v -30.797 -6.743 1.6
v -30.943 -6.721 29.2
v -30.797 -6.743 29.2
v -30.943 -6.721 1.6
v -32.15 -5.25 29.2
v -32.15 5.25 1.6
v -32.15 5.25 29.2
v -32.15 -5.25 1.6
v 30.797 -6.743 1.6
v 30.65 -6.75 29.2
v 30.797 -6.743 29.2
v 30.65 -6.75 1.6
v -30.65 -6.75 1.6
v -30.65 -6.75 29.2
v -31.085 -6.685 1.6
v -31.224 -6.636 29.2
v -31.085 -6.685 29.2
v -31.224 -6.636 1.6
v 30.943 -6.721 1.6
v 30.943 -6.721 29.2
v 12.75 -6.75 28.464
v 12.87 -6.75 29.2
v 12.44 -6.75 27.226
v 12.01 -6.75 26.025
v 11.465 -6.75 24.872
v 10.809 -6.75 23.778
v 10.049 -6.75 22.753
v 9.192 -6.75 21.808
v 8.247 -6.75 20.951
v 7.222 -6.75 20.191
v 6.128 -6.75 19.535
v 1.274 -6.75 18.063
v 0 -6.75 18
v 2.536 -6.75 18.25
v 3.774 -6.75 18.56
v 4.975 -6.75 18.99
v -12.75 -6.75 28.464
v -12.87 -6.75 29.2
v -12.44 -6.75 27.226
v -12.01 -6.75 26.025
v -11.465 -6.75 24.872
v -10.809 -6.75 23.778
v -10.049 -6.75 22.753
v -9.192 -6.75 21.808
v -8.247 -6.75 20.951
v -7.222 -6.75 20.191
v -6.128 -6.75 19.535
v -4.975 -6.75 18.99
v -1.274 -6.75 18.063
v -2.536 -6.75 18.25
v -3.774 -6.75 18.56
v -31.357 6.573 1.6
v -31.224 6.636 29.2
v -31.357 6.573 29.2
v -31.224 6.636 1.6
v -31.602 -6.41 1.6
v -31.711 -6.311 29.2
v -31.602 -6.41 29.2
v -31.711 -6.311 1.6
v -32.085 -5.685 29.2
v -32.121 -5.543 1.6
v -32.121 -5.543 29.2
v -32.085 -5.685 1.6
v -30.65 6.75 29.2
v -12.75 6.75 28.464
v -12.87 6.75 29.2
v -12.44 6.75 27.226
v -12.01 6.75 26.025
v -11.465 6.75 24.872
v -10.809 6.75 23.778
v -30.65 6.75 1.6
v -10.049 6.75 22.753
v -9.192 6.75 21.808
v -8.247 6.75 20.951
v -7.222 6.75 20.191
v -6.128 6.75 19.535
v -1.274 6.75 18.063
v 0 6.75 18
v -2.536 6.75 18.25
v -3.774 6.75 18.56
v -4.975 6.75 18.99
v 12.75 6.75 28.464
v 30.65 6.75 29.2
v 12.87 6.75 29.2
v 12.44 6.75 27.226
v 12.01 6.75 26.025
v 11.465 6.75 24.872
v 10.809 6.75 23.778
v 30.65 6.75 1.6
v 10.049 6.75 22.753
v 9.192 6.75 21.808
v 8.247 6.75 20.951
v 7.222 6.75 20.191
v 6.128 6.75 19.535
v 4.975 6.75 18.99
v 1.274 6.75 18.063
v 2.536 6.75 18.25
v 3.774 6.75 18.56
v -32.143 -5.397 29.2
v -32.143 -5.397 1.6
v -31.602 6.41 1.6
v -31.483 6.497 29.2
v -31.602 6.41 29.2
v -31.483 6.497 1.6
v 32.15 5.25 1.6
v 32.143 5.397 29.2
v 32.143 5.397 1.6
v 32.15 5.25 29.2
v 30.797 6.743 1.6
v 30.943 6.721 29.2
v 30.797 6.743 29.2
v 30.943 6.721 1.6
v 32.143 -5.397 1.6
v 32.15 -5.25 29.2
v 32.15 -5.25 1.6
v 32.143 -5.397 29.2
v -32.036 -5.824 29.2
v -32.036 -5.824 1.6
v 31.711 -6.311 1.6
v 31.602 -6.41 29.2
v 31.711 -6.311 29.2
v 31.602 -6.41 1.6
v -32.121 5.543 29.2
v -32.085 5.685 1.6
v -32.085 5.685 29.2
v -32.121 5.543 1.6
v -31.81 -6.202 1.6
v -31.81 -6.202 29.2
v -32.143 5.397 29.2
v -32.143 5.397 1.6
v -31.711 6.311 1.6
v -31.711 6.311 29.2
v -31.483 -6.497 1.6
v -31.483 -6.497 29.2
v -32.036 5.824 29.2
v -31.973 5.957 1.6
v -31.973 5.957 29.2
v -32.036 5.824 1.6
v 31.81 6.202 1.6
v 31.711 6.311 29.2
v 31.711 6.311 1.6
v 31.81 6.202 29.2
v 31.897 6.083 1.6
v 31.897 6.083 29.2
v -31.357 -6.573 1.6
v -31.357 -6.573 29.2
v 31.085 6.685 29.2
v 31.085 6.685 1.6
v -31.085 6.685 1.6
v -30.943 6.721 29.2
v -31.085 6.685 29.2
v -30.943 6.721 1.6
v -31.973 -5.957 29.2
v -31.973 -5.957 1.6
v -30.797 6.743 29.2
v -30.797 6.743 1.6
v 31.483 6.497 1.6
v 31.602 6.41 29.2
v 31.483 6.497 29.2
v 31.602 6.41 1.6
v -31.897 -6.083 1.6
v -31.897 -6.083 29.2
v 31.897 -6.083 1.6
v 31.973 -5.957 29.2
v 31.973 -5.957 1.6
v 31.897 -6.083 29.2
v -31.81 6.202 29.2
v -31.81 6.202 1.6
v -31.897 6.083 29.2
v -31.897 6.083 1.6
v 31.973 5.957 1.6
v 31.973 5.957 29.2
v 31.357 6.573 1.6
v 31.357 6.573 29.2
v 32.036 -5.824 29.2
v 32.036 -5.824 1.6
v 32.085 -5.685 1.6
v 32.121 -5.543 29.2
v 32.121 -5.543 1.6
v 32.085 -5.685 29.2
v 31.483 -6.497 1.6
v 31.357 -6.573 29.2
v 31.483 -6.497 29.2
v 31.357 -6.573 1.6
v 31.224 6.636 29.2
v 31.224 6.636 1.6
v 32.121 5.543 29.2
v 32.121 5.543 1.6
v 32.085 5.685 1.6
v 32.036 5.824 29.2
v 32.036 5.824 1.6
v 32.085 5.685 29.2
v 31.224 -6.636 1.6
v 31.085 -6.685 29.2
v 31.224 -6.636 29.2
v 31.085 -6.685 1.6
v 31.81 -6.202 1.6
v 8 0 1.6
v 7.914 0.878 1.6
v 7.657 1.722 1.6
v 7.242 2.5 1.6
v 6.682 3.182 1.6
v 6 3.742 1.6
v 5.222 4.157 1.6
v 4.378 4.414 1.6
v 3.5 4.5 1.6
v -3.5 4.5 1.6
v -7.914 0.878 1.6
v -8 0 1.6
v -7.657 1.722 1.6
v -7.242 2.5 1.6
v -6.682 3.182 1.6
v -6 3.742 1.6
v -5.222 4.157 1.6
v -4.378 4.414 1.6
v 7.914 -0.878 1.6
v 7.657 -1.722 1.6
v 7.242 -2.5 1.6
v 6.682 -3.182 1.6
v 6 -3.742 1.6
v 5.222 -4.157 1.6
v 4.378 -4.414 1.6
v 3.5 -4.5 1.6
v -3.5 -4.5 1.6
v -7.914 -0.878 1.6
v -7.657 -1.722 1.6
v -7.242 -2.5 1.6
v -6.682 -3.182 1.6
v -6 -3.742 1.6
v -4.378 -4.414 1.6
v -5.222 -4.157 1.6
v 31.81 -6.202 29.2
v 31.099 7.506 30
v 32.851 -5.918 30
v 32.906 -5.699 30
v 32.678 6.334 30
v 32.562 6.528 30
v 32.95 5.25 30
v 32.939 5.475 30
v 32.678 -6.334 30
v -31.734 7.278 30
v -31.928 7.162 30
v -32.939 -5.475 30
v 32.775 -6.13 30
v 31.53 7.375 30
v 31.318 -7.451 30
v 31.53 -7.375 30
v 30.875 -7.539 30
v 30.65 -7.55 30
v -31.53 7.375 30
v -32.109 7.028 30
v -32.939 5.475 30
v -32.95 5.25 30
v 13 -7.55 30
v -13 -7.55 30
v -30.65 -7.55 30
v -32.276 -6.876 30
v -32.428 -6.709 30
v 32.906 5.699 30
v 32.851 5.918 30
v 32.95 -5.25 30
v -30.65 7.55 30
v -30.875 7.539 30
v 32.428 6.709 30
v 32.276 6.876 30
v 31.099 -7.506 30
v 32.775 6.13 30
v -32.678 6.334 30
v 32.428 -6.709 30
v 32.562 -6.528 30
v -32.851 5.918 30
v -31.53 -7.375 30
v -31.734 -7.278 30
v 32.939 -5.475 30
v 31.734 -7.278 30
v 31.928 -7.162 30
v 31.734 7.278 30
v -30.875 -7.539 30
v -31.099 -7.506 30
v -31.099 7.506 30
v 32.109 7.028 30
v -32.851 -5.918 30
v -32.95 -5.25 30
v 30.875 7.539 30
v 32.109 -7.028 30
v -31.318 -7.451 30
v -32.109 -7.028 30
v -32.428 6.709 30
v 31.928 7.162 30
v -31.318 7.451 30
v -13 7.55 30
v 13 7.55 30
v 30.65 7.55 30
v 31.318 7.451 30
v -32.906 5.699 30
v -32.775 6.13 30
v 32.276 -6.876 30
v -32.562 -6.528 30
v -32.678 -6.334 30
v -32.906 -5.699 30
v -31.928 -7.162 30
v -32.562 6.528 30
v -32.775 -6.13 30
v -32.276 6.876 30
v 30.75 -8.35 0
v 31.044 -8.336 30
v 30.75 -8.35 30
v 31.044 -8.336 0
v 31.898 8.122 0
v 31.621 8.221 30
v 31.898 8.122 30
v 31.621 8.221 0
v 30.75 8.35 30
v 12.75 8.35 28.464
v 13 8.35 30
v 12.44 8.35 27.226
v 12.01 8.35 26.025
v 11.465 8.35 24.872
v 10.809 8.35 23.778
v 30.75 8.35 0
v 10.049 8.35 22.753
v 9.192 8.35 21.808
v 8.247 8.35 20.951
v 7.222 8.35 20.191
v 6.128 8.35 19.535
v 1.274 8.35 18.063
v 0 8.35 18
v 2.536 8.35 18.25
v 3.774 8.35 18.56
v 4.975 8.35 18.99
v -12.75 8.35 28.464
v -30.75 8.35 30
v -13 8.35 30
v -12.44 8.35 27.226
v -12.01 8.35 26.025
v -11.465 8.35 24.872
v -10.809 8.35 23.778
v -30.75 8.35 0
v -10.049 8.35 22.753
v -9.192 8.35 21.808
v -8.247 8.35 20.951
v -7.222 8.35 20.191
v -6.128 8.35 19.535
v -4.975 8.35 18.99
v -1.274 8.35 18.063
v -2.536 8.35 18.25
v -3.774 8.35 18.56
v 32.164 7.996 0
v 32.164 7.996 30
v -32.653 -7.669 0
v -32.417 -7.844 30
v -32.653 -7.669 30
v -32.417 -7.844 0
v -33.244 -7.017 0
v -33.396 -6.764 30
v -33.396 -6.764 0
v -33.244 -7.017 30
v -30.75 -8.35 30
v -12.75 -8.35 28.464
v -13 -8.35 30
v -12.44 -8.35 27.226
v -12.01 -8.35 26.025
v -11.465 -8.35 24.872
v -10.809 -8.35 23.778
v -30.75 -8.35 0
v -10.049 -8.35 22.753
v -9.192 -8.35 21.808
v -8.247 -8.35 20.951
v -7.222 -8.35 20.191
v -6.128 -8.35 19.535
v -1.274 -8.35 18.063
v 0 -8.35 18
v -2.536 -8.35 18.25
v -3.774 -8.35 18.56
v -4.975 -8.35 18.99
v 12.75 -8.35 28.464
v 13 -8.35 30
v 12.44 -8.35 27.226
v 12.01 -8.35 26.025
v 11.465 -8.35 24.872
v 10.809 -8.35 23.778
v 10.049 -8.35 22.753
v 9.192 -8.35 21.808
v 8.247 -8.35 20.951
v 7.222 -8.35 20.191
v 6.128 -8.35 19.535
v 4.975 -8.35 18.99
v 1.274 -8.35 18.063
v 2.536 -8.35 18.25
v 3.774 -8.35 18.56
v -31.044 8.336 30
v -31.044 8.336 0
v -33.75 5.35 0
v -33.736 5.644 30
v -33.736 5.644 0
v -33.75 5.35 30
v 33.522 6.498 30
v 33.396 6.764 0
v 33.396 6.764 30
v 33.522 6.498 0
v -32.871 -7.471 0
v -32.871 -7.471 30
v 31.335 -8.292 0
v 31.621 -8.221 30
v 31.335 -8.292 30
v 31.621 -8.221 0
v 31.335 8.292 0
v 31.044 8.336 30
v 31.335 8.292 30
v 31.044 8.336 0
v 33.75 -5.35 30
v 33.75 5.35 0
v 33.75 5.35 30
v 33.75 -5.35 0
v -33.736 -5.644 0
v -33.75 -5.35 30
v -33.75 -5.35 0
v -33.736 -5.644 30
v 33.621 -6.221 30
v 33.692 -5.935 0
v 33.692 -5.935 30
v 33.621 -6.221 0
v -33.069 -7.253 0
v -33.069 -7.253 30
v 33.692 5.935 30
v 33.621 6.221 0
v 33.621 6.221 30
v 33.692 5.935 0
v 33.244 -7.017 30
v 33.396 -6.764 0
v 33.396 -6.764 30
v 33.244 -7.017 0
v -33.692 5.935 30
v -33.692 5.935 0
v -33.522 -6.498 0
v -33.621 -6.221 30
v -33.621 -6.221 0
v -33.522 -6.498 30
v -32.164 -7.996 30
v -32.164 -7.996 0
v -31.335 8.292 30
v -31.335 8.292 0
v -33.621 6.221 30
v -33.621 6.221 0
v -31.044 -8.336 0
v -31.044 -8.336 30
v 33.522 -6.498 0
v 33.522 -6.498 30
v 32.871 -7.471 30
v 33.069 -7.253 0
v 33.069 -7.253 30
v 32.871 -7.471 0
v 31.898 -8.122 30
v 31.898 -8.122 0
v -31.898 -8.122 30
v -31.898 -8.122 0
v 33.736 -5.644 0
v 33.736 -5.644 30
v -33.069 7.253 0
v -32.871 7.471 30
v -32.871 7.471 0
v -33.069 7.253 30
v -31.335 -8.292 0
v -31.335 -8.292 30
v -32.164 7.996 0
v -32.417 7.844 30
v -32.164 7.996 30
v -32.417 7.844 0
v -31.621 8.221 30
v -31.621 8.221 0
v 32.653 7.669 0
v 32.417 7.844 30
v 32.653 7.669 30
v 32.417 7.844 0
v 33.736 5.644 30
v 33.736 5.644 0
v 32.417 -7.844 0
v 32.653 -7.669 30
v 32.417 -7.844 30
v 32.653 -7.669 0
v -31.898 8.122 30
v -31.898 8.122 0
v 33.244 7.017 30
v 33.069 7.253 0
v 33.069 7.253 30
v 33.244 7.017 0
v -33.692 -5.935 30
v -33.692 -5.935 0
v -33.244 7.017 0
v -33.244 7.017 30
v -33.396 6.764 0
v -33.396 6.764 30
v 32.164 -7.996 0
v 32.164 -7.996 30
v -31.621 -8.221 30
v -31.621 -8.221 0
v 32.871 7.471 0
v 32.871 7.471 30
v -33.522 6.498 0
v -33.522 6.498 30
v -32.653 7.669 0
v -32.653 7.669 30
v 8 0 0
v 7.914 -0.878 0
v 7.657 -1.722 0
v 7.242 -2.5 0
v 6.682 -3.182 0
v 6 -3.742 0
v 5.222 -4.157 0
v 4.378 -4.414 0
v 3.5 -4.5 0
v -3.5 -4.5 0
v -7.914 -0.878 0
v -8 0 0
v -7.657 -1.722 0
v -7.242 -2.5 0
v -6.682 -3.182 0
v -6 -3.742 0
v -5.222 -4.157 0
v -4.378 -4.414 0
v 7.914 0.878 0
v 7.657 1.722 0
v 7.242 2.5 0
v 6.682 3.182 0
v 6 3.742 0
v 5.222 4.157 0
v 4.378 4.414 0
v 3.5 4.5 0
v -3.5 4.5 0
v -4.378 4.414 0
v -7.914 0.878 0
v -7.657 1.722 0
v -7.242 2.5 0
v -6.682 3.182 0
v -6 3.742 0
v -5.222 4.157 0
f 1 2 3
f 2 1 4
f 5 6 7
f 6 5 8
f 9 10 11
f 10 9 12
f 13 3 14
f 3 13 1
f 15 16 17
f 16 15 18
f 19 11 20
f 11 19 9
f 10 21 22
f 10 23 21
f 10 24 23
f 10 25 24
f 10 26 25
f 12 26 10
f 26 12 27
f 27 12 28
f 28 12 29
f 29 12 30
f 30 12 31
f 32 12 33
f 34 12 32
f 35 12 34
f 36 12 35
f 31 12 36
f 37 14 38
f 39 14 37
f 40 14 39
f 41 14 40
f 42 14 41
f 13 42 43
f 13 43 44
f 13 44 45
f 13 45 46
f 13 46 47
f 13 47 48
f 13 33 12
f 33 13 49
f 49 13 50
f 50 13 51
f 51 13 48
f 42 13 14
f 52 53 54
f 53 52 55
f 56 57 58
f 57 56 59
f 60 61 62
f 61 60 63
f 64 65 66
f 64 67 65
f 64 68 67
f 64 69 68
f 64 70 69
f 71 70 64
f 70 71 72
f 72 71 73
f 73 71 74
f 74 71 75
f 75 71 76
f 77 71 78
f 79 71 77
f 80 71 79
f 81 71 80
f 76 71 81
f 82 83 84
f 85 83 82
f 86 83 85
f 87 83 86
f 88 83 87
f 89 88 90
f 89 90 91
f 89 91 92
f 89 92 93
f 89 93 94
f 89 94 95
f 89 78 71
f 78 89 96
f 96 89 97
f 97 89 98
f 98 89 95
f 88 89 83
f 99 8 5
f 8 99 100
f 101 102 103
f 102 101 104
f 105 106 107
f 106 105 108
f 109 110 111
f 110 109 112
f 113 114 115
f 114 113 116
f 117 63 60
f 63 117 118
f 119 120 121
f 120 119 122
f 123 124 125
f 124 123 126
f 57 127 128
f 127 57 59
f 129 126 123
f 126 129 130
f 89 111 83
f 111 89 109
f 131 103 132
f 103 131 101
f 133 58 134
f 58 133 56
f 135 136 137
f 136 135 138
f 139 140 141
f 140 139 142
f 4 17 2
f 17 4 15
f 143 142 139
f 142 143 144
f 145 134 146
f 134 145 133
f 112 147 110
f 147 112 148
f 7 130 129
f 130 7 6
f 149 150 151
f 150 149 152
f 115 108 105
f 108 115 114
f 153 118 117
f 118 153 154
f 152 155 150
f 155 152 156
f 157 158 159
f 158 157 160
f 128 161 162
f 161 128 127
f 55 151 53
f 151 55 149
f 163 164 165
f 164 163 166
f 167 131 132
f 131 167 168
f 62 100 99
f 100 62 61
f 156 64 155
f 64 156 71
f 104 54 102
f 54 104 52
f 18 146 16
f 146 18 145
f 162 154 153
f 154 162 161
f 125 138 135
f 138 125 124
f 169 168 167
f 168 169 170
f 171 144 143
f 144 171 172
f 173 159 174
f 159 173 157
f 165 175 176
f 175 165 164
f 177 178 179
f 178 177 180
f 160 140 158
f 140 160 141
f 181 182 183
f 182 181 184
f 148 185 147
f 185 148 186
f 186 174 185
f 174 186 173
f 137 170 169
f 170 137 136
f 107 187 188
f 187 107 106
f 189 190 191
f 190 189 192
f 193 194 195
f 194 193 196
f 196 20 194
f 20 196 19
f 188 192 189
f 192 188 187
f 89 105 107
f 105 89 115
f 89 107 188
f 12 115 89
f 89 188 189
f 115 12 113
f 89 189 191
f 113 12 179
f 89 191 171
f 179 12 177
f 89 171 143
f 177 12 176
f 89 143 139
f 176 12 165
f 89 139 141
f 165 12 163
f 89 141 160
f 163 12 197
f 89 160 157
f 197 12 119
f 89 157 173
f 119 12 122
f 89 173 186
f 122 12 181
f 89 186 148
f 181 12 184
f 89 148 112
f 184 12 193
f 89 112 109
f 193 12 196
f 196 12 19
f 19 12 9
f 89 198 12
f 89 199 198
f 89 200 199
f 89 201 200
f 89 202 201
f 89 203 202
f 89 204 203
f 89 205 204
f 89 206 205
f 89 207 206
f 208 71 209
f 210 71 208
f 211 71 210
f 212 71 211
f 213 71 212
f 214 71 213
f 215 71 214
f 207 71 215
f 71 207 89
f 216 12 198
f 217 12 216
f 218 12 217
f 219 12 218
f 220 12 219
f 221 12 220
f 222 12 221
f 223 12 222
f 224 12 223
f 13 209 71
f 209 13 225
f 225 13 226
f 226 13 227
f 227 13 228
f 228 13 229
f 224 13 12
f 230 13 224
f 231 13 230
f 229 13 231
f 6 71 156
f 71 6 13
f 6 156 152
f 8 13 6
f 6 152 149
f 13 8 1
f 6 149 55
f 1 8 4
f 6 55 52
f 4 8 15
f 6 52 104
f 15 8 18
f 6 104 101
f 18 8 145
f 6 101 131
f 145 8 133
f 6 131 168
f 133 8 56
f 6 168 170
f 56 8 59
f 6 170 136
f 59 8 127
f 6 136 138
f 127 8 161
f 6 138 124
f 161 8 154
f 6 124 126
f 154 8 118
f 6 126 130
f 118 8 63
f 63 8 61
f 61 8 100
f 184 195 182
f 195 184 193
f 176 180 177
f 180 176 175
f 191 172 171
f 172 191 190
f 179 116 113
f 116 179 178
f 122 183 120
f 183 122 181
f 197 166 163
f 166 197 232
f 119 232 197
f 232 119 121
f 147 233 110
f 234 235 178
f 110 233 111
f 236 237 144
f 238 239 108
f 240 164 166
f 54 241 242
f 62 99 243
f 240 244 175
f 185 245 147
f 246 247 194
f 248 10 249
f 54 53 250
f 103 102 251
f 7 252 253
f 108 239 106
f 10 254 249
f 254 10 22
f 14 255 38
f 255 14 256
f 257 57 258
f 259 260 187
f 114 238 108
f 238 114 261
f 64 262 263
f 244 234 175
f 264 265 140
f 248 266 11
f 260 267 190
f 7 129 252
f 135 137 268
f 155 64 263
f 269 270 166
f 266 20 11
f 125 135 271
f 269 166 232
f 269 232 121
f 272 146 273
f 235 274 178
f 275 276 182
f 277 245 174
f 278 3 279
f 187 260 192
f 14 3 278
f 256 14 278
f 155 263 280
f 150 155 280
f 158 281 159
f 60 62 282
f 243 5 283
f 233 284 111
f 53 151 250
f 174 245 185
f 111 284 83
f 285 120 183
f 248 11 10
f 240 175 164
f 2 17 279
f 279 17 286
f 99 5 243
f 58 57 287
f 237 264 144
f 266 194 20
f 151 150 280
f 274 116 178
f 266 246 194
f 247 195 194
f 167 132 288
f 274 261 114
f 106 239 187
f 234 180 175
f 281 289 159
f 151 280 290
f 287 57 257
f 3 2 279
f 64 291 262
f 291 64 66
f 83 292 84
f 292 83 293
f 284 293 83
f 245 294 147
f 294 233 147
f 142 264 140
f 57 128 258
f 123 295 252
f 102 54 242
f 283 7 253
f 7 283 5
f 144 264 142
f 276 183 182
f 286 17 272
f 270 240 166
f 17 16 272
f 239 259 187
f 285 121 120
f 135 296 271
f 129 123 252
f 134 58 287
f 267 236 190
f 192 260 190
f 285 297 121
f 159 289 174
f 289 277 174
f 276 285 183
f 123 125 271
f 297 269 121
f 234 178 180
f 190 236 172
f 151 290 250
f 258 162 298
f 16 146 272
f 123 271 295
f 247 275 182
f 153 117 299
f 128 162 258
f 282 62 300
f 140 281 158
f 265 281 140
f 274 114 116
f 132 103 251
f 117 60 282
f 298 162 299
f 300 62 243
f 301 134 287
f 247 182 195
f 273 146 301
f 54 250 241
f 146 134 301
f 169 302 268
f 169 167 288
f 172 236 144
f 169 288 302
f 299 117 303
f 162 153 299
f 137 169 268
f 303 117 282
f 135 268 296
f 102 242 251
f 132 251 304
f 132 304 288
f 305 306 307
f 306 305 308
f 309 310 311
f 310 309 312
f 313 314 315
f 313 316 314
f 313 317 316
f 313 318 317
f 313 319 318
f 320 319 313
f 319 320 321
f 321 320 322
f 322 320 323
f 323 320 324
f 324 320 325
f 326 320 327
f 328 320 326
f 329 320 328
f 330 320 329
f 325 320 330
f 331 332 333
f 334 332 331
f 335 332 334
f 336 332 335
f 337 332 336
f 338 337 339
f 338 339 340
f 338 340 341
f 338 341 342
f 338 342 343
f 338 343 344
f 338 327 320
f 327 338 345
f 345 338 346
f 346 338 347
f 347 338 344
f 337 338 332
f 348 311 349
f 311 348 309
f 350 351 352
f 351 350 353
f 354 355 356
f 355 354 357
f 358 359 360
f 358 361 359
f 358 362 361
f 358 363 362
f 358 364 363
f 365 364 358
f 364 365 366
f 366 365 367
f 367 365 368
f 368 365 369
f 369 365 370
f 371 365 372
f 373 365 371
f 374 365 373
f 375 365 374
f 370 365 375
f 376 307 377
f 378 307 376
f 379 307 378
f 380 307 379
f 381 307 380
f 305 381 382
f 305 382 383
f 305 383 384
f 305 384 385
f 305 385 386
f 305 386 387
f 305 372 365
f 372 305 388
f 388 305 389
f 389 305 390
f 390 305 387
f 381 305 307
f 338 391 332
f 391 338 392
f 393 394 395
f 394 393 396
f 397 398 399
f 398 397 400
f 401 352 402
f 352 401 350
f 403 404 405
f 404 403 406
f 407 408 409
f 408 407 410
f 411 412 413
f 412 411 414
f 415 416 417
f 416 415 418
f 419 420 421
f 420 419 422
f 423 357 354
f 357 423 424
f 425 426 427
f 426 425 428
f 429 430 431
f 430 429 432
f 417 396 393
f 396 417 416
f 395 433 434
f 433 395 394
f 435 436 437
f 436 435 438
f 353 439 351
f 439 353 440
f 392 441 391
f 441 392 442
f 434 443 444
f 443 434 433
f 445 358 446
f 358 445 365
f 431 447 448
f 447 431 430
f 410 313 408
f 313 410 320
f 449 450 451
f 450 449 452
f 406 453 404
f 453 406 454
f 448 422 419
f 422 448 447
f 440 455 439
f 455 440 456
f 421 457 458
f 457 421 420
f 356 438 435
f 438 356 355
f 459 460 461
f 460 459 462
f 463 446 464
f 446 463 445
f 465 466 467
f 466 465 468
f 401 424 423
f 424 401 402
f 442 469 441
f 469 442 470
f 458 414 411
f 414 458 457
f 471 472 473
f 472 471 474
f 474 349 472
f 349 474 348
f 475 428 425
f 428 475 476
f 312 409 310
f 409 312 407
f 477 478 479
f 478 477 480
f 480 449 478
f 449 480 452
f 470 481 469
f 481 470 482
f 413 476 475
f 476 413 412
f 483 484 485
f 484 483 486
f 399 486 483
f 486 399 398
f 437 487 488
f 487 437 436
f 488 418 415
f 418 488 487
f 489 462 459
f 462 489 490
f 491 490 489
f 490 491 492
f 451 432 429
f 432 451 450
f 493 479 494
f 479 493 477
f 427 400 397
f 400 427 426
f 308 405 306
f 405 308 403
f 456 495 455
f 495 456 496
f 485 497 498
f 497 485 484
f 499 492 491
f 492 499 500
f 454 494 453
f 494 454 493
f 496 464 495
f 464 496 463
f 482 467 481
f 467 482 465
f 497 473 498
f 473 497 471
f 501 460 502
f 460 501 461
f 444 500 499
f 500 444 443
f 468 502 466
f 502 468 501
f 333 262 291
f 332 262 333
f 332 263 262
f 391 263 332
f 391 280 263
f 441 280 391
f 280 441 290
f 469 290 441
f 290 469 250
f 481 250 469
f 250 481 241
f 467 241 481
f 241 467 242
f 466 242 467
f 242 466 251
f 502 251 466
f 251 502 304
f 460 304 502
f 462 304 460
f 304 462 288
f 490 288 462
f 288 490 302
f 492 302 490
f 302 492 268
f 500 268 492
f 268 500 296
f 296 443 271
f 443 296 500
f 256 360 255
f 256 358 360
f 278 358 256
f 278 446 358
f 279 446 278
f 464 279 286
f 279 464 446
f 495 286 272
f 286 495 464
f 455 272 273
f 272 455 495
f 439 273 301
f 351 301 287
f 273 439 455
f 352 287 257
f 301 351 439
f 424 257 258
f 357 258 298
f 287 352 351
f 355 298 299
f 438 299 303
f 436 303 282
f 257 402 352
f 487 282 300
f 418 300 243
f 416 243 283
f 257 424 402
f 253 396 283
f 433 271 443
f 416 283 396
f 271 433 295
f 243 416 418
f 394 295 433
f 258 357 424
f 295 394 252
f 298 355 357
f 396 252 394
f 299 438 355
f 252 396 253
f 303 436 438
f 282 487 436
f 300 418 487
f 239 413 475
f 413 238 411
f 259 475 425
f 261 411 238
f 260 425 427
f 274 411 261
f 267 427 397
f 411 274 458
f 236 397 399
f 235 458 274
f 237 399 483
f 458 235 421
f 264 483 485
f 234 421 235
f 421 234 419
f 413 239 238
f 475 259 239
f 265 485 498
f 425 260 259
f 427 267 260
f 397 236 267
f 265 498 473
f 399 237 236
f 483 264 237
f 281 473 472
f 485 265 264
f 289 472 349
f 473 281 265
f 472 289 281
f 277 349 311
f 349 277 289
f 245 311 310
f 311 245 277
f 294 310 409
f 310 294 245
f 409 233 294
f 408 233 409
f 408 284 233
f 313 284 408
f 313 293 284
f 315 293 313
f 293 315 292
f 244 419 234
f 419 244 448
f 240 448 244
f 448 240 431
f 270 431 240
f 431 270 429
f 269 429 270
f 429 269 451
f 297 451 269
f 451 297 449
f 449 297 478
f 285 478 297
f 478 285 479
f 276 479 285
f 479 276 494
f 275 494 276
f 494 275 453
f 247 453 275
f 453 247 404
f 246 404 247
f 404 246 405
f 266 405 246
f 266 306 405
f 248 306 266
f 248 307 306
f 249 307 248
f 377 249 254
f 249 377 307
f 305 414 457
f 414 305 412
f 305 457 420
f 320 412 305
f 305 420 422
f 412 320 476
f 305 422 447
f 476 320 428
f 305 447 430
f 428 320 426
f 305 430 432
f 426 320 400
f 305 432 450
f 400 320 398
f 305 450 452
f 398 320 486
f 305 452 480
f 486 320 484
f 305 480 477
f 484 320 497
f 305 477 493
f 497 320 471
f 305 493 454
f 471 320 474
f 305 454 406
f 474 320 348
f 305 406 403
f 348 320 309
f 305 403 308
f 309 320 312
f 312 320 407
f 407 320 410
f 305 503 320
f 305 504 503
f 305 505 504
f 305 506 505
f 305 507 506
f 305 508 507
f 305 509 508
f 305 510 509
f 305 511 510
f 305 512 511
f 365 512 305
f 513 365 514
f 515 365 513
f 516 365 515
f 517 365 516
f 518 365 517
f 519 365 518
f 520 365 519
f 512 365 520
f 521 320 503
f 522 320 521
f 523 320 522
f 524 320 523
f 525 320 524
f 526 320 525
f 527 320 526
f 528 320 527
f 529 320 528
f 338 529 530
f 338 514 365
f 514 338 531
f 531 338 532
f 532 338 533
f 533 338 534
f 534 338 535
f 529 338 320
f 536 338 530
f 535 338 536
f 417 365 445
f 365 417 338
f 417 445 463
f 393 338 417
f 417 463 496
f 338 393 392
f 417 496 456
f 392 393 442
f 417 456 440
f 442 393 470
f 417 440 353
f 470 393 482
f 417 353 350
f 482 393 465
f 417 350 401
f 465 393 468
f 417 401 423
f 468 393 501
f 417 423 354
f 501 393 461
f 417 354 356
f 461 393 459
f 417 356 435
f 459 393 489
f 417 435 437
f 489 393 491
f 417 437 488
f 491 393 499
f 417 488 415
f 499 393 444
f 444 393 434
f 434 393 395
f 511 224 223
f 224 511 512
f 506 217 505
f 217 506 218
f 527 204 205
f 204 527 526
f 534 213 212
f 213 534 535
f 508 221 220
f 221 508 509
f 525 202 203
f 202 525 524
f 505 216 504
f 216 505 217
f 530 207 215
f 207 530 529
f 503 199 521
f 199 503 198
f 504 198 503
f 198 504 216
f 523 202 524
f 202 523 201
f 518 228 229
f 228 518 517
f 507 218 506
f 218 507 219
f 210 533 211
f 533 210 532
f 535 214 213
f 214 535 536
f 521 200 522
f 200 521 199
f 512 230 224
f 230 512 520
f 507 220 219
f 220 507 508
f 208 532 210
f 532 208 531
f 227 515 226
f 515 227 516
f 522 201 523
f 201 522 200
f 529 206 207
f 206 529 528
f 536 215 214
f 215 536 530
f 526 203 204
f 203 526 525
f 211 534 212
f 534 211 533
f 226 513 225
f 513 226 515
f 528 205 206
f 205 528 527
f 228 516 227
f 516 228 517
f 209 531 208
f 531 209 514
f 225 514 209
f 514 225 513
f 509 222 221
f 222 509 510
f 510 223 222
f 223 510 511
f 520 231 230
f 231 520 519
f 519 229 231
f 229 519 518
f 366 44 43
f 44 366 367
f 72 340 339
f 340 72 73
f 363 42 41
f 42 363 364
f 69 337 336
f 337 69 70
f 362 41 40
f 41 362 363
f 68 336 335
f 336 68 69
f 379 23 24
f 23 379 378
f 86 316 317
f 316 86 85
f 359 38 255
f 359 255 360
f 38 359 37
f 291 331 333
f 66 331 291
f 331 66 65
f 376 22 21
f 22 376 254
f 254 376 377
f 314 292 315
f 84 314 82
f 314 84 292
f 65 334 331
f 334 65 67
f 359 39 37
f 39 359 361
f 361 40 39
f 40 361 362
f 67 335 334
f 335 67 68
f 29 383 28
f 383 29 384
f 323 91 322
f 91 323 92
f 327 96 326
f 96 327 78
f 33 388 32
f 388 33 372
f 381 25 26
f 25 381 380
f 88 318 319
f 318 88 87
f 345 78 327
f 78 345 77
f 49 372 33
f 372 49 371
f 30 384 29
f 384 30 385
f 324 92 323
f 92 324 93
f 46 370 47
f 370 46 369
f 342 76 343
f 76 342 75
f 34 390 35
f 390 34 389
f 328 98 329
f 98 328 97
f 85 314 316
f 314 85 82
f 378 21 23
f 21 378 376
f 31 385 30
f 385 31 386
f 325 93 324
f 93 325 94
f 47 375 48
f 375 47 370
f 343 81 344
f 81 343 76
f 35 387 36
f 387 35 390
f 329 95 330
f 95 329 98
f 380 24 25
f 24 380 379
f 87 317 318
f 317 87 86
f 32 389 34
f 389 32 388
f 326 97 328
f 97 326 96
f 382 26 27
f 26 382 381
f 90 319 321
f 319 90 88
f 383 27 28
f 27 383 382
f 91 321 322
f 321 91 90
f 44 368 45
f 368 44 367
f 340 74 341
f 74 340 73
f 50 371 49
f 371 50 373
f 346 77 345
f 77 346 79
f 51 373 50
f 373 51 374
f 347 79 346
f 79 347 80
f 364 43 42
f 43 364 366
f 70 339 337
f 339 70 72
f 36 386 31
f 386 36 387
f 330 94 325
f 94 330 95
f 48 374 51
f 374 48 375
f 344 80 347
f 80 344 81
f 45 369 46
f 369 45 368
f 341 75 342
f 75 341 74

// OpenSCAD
// BambuMaker: Charger Dock — Sleeve Fit Tester
//
// Step 1 of a magnetic dock for a MagSafe-style portable battery pack.
// This part is *only* the cradle: a thin open-top sleeve that the bottom of
// the pack drops into, so the cavity dimensions can be verified in a ~20 min
// print before any of the dock body (stand angle, magnet pocket, quick
// disconnect) gets built around it.
//
// Pack dimensions came off a tape measure in inches and were rounded, so
// treat them as approximate: 4" tall x 2 1/2" wide x 1/2" thick
// = 101.6 x 63.5 x 12.7 mm. Only the width and thickness matter here.
//
// Fit clearance defaults to 0.4 mm per side rather than the house slip-fit
// value of 0.25 mm, because the input dimensions are rounded — better to
// print slightly loose and measure the slop than to print unusable.
// Once the real numbers are known, drop fit_clearance to 0.25.
//
// USB-C: the port sits on the bottom edge of the pack, so the slot passes
// straight through the sleeve floor and is centered. If the port turns out
// to be off-center, shift it with port_offset instead of moving geometry.
//
// Printing: floor down on the bed, exactly as it sits on a desk. No
// overhangs anywhere — the thumb notches open upward through the top edge,
// and the USB-C slot is a through hole starting on the build plate.
// Suggested: 3 perimeters, 15% gyroid, PETG (lives next to electronics).
//
// HOW TO READ THE TEST PRINT
//   - Pack won't enter          -> increase fit_clearance
//   - Pack rattles side to side -> decrease fit_clearance
//   - Cable won't seat          -> increase port_slot_width / port_slot_depth
//   - Port not centered in slot -> set port_offset (+X = toward right wall)
//
// @param pack_width 63.5
// @param pack_thickness 12.7
// @param fit_clearance 0.4
// @param sleeve_height 30
// @param wall 1.6
// @param base_thickness 1.6
// @param port_slot_width 16
// @param port_slot_depth 9
// @param port_offset 0
// @param notch_width 26
// @param notch_depth 12
// @param corner_radius 3

pack_width      = 63.5;  // measured 2 1/2" across the flat face
pack_thickness  = 12.7;  // measured 1/2" through the body
fit_clearance   = 0.4;   // per side; tighten to 0.25 once dims are confirmed
sleeve_height   = 30;    // how far up the 101.6 mm pack the sleeve reaches
wall            = 1.6;   // 4 x nozzle — house minimum for a structural wall
base_thickness  = 1.6;   // floor the pack rests on
port_slot_width = 16;    // USB-C slot, across the width of the pack
port_slot_depth = 9;     // USB-C slot, through the thickness of the pack
port_offset     = 0;     // shift slot along X if the port isn't centered
notch_width     = 26;    // thumb notch, front and back, to push the pack out
notch_depth     = 12;    // how far the notch cuts down from the top edge
corner_radius   = 3;     // outer corner radius, roughly matches the pack

$fn = 64;

lead_in = 0.8;  // flare at the mouth so the pack self-centers going in

// ── derived ──────────────────────────────────────────────
cavity_width     = pack_width     + 2 * fit_clearance;
cavity_thickness = pack_thickness + 2 * fit_clearance;
outer_width      = cavity_width     + 2 * wall;
outer_thickness  = cavity_thickness + 2 * wall;
inner_radius     = max(corner_radius - wall, 1.5);

// rounded rectangular prism, centered in X/Y, sitting on z = 0
module rrect(w, d, h, r) {
    hull()
        for (x = [-1, 1], y = [-1, 1])
            translate([x * (w / 2 - r), y * (d / 2 - r), 0])
                cylinder(h = h, r = r);
}

// the pocket the pack drops into, plus the flared mouth at the top
module cavity() {
    translate([0, 0, base_thickness])
        rrect(cavity_width, cavity_thickness, sleeve_height, inner_radius);

    translate([0, 0, sleeve_height - lead_in])
        hull() {
            rrect(cavity_width, cavity_thickness, 0.01, inner_radius);
            translate([0, 0, lead_in])
                rrect(cavity_width     + 2 * lead_in,
                      cavity_thickness + 2 * lead_in,
                      0.01, inner_radius + lead_in);
        }
}

// rounded slot through the floor for the USB-C cable
module port_slot() {
    r    = port_slot_depth / 2;
    span = max(port_slot_width / 2 - r, 0);

    translate([port_offset, 0, -1])
        hull()
            for (x = [-span, span])
                translate([x, 0, 0])
                    cylinder(h = base_thickness + 2, r = r, $fn = 32);
}

// thumb notches in the front and back walls — open at the top, so the
// exposed face points upward and nothing needs to bridge
module thumb_notches() {
    r = notch_width / 2;

    rotate([90, 0, 0])
        linear_extrude(height = outer_thickness + 10, center = true)
            hull() {
                translate([0, sleeve_height - notch_depth + r])
                    circle(r = r);
                translate([-r, sleeve_height])
                    square([notch_width, r + 5]);
            }
}

// ── part ─────────────────────────────────────────────────
difference() {
    rrect(outer_width, outer_thickness, sleeve_height, corner_radius);
    cavity();
    port_slot();
    thumb_notches();
}
